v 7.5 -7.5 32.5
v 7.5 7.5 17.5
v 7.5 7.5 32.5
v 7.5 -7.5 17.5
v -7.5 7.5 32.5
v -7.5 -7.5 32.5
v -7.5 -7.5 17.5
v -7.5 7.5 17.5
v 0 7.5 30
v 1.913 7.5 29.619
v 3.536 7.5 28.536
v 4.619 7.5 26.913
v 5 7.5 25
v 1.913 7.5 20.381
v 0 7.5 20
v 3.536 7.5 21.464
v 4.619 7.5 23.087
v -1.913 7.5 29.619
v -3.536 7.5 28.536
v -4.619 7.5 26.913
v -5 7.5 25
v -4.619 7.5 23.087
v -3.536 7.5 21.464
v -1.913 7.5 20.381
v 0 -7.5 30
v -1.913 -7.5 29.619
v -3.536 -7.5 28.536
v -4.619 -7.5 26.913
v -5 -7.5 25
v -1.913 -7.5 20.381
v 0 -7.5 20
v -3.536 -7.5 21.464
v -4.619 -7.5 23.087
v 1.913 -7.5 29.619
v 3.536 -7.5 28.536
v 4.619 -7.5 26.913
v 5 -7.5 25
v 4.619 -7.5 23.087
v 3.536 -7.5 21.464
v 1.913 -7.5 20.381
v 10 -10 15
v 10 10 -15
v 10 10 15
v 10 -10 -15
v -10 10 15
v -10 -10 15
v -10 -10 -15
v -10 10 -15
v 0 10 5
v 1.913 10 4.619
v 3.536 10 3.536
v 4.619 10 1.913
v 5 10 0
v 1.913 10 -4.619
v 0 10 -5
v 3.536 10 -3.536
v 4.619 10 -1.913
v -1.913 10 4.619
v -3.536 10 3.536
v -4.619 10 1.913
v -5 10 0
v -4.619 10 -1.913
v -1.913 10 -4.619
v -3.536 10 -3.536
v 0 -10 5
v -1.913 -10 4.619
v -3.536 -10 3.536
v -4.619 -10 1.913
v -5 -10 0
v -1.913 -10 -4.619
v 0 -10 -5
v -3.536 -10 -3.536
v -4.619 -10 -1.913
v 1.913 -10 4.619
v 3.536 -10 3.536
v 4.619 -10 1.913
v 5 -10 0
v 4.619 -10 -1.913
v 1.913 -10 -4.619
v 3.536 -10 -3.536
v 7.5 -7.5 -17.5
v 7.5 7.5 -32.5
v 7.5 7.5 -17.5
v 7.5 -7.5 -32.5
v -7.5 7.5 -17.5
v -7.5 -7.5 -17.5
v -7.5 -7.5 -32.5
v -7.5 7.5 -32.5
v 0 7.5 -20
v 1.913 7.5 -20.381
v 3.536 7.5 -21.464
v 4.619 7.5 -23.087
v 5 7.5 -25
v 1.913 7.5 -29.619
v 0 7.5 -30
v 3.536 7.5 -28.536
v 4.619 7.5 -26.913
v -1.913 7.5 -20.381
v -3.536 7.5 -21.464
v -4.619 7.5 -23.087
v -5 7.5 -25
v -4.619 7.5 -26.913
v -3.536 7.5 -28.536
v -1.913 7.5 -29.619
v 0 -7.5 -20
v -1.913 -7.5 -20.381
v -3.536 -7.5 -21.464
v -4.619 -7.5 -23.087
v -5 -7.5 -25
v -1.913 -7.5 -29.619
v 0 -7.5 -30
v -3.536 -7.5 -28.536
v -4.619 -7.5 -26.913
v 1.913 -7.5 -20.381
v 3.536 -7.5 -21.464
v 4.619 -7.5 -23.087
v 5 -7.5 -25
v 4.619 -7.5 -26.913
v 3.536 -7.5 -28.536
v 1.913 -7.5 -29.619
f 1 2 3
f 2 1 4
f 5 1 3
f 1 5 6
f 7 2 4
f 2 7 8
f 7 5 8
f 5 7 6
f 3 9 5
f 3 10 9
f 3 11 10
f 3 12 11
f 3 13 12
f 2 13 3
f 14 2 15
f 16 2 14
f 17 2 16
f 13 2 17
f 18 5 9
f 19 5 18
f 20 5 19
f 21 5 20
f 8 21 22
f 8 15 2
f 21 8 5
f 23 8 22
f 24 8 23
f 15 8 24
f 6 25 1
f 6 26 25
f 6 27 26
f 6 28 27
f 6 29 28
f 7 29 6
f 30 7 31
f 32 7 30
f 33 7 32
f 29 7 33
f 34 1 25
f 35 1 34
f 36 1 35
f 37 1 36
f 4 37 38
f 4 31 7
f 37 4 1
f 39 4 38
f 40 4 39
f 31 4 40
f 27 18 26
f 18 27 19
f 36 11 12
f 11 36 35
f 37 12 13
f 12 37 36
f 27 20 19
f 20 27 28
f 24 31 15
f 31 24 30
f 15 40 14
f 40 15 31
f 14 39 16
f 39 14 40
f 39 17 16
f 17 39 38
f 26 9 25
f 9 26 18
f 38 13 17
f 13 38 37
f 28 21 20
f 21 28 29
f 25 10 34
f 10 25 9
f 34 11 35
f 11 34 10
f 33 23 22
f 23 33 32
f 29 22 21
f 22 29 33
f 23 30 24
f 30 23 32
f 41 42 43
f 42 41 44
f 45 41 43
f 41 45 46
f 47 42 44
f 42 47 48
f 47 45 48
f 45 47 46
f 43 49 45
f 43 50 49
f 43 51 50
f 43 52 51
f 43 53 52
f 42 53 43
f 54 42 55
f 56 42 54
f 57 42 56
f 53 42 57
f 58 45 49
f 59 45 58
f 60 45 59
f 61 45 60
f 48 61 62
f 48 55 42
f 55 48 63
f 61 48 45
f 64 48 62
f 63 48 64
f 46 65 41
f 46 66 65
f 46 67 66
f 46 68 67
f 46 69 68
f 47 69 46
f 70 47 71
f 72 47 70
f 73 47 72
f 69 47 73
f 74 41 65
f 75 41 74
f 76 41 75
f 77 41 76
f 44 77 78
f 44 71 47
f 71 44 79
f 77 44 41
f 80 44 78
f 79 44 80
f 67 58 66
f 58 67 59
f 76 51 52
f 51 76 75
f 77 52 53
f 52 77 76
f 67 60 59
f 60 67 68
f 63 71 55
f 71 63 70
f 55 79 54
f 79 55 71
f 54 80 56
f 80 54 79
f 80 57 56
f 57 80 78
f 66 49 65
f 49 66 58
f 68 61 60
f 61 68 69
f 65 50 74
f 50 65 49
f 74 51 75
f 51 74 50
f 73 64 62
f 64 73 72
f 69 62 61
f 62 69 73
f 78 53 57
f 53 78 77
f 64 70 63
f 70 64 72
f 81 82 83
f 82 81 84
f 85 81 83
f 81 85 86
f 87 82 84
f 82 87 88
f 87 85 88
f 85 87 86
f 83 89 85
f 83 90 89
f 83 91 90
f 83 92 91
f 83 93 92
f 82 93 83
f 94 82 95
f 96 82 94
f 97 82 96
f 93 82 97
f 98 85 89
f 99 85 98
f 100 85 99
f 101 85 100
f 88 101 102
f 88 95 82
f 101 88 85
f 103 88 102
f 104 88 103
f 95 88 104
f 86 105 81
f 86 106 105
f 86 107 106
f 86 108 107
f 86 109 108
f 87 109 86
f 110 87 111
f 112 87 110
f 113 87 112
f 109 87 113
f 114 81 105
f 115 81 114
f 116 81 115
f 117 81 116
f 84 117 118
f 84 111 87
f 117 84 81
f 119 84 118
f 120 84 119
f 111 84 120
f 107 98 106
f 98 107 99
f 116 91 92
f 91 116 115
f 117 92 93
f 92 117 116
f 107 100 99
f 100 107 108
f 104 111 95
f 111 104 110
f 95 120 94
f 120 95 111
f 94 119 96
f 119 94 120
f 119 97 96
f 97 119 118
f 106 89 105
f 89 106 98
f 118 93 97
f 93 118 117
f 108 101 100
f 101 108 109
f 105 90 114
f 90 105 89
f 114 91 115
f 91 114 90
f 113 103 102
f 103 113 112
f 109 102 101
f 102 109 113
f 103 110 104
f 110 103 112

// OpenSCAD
// Parameters for the blocks
central_block_size = [20, 20, 30]; // Size of the central block (rectangular prism)
spacer_block_size = [15, 15, 15];  // Size of the spacer blocks (cube)
gap_between_spacers = 5;           // Gap between spacer blocks
hole_diameter = 10;                // Diameter of the cylindrical hole
hole_radius = hole_diameter / 2;

// Function to create a block with a cylindrical hole
module block_with_hole(block_size) {
    difference() {
        // Create the block
        cube(block_size, center = true);
        // Subtract the cylindrical hole
        rotate([90, 0, 0]) {
            translate([0, 0, 0]) {
                cylinder(h = block_size[2] + 2, r = hole_radius, center = true);
            }
        }
    }
}

// Assembly of the flexible coupling
module flexible_coupling() {
    // Layer 1: Spacer block 1
    translate([0, 0, spacer_block_size[2] / 2 + central_block_size[2] / 2 + gap_between_spacers / 2]) {
        block_with_hole(spacer_block_size);
    }
    
    // Layer 2: Central block
    translate([0, 0, 0]) {
        block_with_hole(central_block_size);
    }
    
    // Layer 3: Spacer block 2
    translate([0, 0, -(spacer_block_size[2] / 2 + central_block_size[2] / 2 + gap_between_spacers / 2)]) {
        block_with_hole(spacer_block_size);
    }
}

// Render the flexible coupling
flexible_coupling();
